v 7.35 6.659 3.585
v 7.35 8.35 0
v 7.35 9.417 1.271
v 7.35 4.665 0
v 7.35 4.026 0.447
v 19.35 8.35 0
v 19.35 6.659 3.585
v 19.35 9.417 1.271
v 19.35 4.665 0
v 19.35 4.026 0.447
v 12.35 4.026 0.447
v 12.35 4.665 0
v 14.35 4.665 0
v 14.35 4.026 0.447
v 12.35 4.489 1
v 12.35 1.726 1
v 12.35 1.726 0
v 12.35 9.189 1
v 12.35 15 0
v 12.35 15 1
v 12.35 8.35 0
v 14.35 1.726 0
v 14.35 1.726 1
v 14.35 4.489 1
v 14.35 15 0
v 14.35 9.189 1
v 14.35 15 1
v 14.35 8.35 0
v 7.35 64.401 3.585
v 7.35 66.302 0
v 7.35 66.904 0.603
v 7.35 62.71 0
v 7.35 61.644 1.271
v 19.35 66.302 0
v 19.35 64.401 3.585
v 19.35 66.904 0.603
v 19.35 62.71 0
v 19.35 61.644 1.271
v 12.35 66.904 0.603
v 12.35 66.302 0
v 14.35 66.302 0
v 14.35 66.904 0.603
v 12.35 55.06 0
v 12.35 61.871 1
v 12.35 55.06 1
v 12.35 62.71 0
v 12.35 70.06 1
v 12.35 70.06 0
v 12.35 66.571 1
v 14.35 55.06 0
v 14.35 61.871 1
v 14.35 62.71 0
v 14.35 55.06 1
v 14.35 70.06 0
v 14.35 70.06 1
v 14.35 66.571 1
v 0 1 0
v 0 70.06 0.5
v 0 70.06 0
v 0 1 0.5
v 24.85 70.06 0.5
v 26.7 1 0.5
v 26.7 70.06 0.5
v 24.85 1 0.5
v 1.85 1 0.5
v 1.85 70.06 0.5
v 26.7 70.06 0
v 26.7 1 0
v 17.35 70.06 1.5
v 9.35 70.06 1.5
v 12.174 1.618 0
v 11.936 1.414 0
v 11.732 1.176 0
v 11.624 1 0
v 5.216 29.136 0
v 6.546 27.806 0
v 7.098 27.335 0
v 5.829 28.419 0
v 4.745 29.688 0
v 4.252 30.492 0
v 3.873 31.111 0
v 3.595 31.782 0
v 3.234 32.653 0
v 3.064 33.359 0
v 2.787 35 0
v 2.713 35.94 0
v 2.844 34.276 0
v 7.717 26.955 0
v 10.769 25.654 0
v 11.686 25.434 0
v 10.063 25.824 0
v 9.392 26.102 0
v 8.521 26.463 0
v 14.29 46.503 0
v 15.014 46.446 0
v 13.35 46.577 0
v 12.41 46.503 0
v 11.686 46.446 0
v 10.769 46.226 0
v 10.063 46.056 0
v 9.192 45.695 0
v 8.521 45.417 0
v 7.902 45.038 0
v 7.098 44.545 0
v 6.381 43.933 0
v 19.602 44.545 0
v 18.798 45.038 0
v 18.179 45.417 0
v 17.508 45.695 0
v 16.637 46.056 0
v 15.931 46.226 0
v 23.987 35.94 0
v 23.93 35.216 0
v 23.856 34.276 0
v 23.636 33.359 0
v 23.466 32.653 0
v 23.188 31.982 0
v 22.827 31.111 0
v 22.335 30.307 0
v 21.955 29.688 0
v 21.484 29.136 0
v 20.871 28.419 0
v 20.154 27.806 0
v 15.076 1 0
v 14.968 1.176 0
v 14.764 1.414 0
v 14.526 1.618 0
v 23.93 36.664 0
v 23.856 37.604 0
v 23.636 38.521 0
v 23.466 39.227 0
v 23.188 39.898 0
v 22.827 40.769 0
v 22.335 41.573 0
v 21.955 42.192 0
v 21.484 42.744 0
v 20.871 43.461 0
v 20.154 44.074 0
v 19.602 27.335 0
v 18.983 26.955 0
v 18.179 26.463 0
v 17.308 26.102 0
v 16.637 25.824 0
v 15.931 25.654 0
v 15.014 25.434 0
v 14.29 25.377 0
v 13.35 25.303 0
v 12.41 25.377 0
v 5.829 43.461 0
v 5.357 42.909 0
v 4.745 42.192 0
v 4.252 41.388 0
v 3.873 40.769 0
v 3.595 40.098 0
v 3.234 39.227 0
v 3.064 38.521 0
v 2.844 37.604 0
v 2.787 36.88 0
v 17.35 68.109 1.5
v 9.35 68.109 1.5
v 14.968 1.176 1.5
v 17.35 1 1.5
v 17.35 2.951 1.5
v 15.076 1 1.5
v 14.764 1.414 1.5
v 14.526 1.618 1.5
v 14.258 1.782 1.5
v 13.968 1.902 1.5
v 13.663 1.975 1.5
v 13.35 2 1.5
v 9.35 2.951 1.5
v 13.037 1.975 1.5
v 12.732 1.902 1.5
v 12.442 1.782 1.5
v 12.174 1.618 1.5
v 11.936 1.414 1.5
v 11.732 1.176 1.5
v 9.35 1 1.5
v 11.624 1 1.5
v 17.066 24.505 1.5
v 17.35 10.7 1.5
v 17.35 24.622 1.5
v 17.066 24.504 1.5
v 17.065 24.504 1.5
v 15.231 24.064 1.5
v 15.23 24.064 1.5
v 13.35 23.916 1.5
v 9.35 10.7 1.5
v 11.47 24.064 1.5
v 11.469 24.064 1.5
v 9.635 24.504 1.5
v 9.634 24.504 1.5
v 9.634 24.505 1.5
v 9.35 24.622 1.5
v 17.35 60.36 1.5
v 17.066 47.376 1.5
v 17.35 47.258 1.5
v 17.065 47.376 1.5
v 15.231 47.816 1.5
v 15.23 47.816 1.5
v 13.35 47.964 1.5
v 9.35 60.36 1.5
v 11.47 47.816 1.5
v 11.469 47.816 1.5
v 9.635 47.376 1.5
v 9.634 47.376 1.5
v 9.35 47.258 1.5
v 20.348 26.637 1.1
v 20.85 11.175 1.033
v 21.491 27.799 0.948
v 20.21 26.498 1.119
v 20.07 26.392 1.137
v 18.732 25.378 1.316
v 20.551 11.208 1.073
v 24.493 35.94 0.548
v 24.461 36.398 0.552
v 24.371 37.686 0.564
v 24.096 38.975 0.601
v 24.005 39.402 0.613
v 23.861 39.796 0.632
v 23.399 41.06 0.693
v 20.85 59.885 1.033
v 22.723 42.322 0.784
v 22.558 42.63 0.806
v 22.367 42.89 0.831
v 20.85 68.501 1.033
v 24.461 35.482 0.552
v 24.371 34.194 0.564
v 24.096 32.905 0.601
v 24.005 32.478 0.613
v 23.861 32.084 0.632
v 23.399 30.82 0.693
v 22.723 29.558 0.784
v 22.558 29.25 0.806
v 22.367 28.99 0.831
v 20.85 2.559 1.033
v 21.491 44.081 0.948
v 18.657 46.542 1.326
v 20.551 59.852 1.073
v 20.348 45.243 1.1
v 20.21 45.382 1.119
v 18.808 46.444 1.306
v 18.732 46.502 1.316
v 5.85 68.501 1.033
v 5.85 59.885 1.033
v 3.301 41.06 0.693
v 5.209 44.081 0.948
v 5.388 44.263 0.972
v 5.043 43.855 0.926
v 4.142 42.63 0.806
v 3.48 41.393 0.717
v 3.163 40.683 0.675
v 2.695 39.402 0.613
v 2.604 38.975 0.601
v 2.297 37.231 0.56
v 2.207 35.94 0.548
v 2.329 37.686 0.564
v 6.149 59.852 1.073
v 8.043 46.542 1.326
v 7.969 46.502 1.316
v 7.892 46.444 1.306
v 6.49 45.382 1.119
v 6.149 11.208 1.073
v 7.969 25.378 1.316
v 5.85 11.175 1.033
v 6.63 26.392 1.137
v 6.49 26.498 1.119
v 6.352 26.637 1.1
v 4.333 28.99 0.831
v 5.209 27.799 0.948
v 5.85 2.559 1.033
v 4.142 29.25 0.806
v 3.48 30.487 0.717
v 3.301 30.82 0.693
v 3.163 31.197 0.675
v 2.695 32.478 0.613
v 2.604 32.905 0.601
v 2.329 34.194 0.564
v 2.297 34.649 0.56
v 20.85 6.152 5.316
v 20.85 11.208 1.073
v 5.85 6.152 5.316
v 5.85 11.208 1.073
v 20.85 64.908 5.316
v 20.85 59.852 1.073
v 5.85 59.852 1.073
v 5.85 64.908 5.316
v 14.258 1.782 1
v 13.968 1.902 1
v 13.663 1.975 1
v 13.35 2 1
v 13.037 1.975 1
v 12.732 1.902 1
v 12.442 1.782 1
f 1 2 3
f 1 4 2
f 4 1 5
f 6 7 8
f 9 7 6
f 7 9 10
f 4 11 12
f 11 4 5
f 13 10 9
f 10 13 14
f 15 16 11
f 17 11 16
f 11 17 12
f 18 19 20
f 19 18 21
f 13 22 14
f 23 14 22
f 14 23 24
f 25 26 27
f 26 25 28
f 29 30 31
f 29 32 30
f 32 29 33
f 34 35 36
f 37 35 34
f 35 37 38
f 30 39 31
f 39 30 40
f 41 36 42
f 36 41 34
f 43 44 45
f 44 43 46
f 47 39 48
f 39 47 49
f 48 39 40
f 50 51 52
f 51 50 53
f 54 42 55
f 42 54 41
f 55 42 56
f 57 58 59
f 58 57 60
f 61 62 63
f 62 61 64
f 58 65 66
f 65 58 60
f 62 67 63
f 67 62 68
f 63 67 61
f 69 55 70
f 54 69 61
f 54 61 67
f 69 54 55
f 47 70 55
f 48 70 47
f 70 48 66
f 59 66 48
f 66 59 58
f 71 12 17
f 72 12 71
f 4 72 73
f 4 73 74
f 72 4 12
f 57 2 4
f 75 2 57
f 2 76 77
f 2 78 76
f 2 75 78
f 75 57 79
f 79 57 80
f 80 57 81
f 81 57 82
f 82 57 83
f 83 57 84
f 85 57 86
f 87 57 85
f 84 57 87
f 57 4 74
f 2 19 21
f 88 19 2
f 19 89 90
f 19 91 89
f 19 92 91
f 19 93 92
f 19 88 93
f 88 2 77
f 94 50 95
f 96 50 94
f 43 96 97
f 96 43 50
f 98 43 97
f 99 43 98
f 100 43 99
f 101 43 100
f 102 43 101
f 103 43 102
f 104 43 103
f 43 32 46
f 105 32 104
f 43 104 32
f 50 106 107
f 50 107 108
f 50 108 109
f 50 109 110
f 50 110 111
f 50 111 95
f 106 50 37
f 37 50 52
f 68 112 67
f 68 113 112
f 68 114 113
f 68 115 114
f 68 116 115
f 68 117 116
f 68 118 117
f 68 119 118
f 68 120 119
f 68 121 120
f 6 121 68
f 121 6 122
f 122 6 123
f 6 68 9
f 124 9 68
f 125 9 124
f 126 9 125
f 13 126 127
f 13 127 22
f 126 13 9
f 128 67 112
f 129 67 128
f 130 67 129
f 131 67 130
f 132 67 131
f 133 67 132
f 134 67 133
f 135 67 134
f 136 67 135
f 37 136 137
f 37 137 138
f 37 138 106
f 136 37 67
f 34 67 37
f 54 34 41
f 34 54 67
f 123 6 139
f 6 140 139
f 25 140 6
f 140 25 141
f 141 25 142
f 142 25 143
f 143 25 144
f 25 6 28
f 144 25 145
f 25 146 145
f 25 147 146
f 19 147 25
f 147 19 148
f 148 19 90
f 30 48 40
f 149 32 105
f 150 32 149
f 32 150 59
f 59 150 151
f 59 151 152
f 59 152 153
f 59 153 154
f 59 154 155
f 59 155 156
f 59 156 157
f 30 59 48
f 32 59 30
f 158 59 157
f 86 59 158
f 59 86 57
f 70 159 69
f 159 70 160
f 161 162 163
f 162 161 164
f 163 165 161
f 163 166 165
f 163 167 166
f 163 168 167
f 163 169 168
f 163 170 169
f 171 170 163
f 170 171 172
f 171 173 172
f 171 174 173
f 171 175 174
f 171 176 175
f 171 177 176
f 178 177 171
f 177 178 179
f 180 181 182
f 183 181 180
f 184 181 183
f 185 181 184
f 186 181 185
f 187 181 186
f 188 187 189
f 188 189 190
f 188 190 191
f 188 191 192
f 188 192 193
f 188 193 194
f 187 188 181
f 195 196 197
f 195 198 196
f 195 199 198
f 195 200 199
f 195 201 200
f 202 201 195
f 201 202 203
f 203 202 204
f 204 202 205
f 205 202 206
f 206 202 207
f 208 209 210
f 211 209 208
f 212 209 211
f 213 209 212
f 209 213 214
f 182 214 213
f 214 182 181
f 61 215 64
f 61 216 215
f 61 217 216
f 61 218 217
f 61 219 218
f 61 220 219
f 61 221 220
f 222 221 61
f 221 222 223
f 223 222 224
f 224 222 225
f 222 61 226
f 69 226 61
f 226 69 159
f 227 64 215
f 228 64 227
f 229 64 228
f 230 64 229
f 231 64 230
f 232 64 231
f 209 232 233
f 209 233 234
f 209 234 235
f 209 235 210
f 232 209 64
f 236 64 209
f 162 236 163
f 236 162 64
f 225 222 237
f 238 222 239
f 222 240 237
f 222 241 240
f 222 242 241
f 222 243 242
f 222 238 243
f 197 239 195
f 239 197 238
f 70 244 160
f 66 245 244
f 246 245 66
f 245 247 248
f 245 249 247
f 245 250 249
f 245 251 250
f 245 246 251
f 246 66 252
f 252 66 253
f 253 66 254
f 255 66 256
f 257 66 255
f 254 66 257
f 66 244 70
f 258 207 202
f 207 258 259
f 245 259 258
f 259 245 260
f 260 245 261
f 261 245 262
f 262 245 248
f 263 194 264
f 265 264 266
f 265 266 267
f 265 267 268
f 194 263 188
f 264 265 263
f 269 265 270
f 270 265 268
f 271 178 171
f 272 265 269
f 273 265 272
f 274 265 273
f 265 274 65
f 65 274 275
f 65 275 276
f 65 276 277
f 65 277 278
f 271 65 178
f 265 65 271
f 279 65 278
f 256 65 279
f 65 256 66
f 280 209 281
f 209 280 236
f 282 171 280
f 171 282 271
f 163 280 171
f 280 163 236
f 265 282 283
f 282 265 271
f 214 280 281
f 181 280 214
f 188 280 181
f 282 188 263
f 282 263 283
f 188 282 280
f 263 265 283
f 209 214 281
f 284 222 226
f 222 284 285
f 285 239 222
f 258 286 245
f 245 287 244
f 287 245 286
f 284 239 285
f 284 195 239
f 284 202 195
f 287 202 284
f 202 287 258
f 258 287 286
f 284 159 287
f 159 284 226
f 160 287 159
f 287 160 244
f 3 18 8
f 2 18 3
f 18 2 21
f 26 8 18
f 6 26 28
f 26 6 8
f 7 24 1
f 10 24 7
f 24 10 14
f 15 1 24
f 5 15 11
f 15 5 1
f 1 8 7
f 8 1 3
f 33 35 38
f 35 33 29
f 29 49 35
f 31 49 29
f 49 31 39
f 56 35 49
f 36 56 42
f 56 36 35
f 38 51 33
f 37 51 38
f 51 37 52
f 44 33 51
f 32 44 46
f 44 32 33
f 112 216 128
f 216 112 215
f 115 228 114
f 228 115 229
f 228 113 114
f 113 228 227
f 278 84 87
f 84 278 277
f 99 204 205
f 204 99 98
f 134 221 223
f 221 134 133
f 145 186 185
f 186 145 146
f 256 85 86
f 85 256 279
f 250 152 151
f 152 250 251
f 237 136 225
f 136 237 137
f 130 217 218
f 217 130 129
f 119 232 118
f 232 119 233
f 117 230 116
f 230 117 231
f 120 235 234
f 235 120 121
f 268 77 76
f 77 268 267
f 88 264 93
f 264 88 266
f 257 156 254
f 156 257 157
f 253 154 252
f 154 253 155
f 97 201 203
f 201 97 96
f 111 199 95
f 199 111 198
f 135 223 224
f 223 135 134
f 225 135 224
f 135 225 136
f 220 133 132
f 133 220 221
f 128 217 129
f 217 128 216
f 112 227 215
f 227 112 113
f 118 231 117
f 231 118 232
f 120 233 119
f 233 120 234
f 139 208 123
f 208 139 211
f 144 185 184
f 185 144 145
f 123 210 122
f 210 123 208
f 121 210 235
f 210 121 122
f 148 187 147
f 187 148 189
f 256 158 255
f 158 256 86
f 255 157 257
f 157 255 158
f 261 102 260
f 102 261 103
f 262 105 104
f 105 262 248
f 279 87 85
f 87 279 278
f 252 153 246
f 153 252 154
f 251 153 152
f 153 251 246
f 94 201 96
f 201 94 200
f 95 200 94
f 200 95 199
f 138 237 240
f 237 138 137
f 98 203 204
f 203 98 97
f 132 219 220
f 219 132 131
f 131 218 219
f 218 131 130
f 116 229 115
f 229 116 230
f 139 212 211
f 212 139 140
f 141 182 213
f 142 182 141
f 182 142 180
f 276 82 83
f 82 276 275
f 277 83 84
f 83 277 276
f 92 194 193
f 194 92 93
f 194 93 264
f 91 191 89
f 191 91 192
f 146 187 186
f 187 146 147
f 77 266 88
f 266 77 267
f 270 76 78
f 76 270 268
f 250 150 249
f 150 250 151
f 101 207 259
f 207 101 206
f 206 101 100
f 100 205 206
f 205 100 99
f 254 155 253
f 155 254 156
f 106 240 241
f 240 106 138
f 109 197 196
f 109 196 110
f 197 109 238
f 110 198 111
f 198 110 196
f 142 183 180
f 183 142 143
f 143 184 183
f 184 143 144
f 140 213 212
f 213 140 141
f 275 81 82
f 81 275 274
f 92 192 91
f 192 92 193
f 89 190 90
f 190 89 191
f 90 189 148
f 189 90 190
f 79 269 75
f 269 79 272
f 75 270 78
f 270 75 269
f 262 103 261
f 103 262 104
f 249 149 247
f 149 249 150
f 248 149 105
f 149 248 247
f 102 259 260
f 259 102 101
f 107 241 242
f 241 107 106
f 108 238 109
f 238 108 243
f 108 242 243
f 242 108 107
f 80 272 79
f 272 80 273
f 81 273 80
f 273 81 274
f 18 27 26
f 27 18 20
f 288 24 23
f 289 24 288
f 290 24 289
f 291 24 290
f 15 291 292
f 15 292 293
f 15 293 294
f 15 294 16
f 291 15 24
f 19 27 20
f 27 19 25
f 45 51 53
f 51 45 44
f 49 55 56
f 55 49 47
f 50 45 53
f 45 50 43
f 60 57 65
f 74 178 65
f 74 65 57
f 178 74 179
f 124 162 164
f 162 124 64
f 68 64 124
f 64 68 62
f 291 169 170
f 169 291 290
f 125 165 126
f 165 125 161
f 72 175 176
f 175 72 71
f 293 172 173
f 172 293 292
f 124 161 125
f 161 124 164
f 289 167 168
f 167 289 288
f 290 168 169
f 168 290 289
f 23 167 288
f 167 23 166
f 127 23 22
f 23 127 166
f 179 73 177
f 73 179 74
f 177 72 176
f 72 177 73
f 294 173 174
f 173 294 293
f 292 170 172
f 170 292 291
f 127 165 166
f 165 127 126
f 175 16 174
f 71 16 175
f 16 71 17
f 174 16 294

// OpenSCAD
$fn=40;

/* Diffuser Lense For A Particular Project (OpenSCAD) */

// NOTE on this near 45deg. The idea is that we want the spot effect to just miss the window

/* Camera */
cam_dia = 10.5;

/* LED PCB */
ledpcbw = 26.7;
ledpcbh = 71.88;
ledpcb_thickness = 3.47;
ledpcb_header_pos = 25;
ledpcb_header_w = 9;
holedia = (cam_dia + 8);

/* Diffuser */
diffuserw=ledpcbw;
diffuserh=ledpcbh-1.82;
thickness=ledpcb_thickness-1.59;

/* Top Diffuser */
diffuser_top_h=0.5;

/* Bottom Diffuser */
diffuser_bottom_h=1;

/* Enclosure hole */
enclosurew = ledpcb_header_pos-2;

/* SMD LED */
ledh = 2.76-1.59;
ledw = 4;
ledd = 1.6;

/* INSET */
led_mount_inset = 5;
led_mount_angle = 180-40;
led_mount_tol=2;
led_mount_thickness=3;

module led_mount(rotation, w, d, h, inset=0)
{
  rotate([rotation,0,0])
    union()
    {
      translate([ledpcbw/2 - w/2, -d/2, -h+inset])
        cube([w,d,h+4+1]);
    }
}


module led_mount_pit(rotation, w, d, h)
{
  translate([0,0,1])
  rotate([rotation+5,0,0])
    union()
    {
      difference()
      {
        translate([ledpcbw/2 - w/2, -d/2, h/2])
          cube([w,d,h+4]);
        translate([ledpcbw/2-1, -d/2+1, -h])
          cube([2,d,h+4]);
      }
    }
}

intersection()
{
difference()
{
  union()
  { 
    // Main object
    difference()
    {
      union()
      { // Main Body
        
        // Top Diffuser
        cube([diffuserw,diffuserh,diffuser_top_h]);
        
        // Bottom Diffuser
        bottom_flat_width = ledw;
        hull()
        {
          translate([(diffuserw - enclosurew)/2,0,0])
            cube([enclosurew,diffuserh,diffuser_top_h]);
          translate([ledpcbw/2 - bottom_flat_width,0,diffuser_top_h])
            cube([bottom_flat_width*2, diffuserh, diffuser_bottom_h]);
        }
        
        // LED Holes
        translate([0,1+led_mount_inset,0])
          led_mount(led_mount_angle,ledw+led_mount_tol*4+led_mount_thickness,ledd+led_mount_tol+led_mount_thickness,ledh+led_mount_thickness+0);
        translate([0,diffuserh-led_mount_inset,0])
          led_mount(-led_mount_angle,ledw+led_mount_tol*4+led_mount_thickness,ledd+led_mount_tol+led_mount_thickness,ledh+led_mount_thickness+0);
      }

      // LED Holes
      translate([0,1+led_mount_inset,0])
        led_mount(led_mount_angle,ledw+led_mount_tol*4,ledd+led_mount_tol,ledh+2);
      translate([0,diffuserh-led_mount_inset,0])
        led_mount(-led_mount_angle,ledw+led_mount_tol*4,ledd+led_mount_tol,ledh+2);

      // Camera Hole
      translate([ledpcbw/2,ledpcbh/2,-thickness/2])
        cylinder(thickness*3,d=holedia);

      // Camera Hole Bottom Lip
      translate([ledpcbw/2,ledpcbh/2, diffuser_top_h+diffuser_bottom_h-3+0.001])
        cylinder(3, d1=holedia, d2=holedia*1.3);
     }
     
     if(1)
     {
     // LED Pit
      translate([0,1+led_mount_inset,0])
        led_mount_pit(led_mount_angle,ledw+led_mount_tol*4,ledd+led_mount_tol,ledh+2);
      translate([0,diffuserh-led_mount_inset,0])
        led_mount_pit(-led_mount_angle,ledw+led_mount_tol*4,ledd+led_mount_tol,ledh+2);
     }
     
  }
  
  /* Wire Cut */
  #translate([ledpcbw/2, 0, 0])
    cube([2,30,2], center=true);
  #translate([ledpcbw/2, diffuserh, 0])
    cube([2,30,2], center=true);

  /* Trimming */
  translate([0,0,-thickness])
    cube([diffuserw,1,thickness*4]);
  
  /* Remove bottom */
  translate([0,0,-5])
    cube([1000,1000,10], center=true);  
  
  /* Trimming */
  translate([ledpcbw/2,0,-thickness])
    cylinder(r=2,h=100);
}
  cube([diffuserw,diffuserh,1000]);
}
